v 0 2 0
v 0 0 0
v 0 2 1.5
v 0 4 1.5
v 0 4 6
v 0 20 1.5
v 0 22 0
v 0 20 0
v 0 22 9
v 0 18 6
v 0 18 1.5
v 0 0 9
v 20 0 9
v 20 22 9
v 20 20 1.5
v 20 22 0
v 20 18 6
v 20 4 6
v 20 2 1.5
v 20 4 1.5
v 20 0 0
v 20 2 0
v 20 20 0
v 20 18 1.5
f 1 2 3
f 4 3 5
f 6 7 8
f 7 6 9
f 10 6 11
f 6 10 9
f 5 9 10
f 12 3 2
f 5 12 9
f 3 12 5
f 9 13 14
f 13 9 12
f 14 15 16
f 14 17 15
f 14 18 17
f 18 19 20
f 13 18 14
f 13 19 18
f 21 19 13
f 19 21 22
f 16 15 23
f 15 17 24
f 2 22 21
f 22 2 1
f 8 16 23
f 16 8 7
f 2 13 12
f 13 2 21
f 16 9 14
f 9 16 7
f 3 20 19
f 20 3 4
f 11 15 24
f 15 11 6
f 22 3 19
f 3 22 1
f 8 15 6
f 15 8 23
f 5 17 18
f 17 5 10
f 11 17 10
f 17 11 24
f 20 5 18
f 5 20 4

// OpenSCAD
difference() 
{
  cube([20,22,9]);
  
  translate([0,2,0])
    cube([20,18,1.5]);
  
   translate([0,4,0])
    cube([20,14,6]);
}
